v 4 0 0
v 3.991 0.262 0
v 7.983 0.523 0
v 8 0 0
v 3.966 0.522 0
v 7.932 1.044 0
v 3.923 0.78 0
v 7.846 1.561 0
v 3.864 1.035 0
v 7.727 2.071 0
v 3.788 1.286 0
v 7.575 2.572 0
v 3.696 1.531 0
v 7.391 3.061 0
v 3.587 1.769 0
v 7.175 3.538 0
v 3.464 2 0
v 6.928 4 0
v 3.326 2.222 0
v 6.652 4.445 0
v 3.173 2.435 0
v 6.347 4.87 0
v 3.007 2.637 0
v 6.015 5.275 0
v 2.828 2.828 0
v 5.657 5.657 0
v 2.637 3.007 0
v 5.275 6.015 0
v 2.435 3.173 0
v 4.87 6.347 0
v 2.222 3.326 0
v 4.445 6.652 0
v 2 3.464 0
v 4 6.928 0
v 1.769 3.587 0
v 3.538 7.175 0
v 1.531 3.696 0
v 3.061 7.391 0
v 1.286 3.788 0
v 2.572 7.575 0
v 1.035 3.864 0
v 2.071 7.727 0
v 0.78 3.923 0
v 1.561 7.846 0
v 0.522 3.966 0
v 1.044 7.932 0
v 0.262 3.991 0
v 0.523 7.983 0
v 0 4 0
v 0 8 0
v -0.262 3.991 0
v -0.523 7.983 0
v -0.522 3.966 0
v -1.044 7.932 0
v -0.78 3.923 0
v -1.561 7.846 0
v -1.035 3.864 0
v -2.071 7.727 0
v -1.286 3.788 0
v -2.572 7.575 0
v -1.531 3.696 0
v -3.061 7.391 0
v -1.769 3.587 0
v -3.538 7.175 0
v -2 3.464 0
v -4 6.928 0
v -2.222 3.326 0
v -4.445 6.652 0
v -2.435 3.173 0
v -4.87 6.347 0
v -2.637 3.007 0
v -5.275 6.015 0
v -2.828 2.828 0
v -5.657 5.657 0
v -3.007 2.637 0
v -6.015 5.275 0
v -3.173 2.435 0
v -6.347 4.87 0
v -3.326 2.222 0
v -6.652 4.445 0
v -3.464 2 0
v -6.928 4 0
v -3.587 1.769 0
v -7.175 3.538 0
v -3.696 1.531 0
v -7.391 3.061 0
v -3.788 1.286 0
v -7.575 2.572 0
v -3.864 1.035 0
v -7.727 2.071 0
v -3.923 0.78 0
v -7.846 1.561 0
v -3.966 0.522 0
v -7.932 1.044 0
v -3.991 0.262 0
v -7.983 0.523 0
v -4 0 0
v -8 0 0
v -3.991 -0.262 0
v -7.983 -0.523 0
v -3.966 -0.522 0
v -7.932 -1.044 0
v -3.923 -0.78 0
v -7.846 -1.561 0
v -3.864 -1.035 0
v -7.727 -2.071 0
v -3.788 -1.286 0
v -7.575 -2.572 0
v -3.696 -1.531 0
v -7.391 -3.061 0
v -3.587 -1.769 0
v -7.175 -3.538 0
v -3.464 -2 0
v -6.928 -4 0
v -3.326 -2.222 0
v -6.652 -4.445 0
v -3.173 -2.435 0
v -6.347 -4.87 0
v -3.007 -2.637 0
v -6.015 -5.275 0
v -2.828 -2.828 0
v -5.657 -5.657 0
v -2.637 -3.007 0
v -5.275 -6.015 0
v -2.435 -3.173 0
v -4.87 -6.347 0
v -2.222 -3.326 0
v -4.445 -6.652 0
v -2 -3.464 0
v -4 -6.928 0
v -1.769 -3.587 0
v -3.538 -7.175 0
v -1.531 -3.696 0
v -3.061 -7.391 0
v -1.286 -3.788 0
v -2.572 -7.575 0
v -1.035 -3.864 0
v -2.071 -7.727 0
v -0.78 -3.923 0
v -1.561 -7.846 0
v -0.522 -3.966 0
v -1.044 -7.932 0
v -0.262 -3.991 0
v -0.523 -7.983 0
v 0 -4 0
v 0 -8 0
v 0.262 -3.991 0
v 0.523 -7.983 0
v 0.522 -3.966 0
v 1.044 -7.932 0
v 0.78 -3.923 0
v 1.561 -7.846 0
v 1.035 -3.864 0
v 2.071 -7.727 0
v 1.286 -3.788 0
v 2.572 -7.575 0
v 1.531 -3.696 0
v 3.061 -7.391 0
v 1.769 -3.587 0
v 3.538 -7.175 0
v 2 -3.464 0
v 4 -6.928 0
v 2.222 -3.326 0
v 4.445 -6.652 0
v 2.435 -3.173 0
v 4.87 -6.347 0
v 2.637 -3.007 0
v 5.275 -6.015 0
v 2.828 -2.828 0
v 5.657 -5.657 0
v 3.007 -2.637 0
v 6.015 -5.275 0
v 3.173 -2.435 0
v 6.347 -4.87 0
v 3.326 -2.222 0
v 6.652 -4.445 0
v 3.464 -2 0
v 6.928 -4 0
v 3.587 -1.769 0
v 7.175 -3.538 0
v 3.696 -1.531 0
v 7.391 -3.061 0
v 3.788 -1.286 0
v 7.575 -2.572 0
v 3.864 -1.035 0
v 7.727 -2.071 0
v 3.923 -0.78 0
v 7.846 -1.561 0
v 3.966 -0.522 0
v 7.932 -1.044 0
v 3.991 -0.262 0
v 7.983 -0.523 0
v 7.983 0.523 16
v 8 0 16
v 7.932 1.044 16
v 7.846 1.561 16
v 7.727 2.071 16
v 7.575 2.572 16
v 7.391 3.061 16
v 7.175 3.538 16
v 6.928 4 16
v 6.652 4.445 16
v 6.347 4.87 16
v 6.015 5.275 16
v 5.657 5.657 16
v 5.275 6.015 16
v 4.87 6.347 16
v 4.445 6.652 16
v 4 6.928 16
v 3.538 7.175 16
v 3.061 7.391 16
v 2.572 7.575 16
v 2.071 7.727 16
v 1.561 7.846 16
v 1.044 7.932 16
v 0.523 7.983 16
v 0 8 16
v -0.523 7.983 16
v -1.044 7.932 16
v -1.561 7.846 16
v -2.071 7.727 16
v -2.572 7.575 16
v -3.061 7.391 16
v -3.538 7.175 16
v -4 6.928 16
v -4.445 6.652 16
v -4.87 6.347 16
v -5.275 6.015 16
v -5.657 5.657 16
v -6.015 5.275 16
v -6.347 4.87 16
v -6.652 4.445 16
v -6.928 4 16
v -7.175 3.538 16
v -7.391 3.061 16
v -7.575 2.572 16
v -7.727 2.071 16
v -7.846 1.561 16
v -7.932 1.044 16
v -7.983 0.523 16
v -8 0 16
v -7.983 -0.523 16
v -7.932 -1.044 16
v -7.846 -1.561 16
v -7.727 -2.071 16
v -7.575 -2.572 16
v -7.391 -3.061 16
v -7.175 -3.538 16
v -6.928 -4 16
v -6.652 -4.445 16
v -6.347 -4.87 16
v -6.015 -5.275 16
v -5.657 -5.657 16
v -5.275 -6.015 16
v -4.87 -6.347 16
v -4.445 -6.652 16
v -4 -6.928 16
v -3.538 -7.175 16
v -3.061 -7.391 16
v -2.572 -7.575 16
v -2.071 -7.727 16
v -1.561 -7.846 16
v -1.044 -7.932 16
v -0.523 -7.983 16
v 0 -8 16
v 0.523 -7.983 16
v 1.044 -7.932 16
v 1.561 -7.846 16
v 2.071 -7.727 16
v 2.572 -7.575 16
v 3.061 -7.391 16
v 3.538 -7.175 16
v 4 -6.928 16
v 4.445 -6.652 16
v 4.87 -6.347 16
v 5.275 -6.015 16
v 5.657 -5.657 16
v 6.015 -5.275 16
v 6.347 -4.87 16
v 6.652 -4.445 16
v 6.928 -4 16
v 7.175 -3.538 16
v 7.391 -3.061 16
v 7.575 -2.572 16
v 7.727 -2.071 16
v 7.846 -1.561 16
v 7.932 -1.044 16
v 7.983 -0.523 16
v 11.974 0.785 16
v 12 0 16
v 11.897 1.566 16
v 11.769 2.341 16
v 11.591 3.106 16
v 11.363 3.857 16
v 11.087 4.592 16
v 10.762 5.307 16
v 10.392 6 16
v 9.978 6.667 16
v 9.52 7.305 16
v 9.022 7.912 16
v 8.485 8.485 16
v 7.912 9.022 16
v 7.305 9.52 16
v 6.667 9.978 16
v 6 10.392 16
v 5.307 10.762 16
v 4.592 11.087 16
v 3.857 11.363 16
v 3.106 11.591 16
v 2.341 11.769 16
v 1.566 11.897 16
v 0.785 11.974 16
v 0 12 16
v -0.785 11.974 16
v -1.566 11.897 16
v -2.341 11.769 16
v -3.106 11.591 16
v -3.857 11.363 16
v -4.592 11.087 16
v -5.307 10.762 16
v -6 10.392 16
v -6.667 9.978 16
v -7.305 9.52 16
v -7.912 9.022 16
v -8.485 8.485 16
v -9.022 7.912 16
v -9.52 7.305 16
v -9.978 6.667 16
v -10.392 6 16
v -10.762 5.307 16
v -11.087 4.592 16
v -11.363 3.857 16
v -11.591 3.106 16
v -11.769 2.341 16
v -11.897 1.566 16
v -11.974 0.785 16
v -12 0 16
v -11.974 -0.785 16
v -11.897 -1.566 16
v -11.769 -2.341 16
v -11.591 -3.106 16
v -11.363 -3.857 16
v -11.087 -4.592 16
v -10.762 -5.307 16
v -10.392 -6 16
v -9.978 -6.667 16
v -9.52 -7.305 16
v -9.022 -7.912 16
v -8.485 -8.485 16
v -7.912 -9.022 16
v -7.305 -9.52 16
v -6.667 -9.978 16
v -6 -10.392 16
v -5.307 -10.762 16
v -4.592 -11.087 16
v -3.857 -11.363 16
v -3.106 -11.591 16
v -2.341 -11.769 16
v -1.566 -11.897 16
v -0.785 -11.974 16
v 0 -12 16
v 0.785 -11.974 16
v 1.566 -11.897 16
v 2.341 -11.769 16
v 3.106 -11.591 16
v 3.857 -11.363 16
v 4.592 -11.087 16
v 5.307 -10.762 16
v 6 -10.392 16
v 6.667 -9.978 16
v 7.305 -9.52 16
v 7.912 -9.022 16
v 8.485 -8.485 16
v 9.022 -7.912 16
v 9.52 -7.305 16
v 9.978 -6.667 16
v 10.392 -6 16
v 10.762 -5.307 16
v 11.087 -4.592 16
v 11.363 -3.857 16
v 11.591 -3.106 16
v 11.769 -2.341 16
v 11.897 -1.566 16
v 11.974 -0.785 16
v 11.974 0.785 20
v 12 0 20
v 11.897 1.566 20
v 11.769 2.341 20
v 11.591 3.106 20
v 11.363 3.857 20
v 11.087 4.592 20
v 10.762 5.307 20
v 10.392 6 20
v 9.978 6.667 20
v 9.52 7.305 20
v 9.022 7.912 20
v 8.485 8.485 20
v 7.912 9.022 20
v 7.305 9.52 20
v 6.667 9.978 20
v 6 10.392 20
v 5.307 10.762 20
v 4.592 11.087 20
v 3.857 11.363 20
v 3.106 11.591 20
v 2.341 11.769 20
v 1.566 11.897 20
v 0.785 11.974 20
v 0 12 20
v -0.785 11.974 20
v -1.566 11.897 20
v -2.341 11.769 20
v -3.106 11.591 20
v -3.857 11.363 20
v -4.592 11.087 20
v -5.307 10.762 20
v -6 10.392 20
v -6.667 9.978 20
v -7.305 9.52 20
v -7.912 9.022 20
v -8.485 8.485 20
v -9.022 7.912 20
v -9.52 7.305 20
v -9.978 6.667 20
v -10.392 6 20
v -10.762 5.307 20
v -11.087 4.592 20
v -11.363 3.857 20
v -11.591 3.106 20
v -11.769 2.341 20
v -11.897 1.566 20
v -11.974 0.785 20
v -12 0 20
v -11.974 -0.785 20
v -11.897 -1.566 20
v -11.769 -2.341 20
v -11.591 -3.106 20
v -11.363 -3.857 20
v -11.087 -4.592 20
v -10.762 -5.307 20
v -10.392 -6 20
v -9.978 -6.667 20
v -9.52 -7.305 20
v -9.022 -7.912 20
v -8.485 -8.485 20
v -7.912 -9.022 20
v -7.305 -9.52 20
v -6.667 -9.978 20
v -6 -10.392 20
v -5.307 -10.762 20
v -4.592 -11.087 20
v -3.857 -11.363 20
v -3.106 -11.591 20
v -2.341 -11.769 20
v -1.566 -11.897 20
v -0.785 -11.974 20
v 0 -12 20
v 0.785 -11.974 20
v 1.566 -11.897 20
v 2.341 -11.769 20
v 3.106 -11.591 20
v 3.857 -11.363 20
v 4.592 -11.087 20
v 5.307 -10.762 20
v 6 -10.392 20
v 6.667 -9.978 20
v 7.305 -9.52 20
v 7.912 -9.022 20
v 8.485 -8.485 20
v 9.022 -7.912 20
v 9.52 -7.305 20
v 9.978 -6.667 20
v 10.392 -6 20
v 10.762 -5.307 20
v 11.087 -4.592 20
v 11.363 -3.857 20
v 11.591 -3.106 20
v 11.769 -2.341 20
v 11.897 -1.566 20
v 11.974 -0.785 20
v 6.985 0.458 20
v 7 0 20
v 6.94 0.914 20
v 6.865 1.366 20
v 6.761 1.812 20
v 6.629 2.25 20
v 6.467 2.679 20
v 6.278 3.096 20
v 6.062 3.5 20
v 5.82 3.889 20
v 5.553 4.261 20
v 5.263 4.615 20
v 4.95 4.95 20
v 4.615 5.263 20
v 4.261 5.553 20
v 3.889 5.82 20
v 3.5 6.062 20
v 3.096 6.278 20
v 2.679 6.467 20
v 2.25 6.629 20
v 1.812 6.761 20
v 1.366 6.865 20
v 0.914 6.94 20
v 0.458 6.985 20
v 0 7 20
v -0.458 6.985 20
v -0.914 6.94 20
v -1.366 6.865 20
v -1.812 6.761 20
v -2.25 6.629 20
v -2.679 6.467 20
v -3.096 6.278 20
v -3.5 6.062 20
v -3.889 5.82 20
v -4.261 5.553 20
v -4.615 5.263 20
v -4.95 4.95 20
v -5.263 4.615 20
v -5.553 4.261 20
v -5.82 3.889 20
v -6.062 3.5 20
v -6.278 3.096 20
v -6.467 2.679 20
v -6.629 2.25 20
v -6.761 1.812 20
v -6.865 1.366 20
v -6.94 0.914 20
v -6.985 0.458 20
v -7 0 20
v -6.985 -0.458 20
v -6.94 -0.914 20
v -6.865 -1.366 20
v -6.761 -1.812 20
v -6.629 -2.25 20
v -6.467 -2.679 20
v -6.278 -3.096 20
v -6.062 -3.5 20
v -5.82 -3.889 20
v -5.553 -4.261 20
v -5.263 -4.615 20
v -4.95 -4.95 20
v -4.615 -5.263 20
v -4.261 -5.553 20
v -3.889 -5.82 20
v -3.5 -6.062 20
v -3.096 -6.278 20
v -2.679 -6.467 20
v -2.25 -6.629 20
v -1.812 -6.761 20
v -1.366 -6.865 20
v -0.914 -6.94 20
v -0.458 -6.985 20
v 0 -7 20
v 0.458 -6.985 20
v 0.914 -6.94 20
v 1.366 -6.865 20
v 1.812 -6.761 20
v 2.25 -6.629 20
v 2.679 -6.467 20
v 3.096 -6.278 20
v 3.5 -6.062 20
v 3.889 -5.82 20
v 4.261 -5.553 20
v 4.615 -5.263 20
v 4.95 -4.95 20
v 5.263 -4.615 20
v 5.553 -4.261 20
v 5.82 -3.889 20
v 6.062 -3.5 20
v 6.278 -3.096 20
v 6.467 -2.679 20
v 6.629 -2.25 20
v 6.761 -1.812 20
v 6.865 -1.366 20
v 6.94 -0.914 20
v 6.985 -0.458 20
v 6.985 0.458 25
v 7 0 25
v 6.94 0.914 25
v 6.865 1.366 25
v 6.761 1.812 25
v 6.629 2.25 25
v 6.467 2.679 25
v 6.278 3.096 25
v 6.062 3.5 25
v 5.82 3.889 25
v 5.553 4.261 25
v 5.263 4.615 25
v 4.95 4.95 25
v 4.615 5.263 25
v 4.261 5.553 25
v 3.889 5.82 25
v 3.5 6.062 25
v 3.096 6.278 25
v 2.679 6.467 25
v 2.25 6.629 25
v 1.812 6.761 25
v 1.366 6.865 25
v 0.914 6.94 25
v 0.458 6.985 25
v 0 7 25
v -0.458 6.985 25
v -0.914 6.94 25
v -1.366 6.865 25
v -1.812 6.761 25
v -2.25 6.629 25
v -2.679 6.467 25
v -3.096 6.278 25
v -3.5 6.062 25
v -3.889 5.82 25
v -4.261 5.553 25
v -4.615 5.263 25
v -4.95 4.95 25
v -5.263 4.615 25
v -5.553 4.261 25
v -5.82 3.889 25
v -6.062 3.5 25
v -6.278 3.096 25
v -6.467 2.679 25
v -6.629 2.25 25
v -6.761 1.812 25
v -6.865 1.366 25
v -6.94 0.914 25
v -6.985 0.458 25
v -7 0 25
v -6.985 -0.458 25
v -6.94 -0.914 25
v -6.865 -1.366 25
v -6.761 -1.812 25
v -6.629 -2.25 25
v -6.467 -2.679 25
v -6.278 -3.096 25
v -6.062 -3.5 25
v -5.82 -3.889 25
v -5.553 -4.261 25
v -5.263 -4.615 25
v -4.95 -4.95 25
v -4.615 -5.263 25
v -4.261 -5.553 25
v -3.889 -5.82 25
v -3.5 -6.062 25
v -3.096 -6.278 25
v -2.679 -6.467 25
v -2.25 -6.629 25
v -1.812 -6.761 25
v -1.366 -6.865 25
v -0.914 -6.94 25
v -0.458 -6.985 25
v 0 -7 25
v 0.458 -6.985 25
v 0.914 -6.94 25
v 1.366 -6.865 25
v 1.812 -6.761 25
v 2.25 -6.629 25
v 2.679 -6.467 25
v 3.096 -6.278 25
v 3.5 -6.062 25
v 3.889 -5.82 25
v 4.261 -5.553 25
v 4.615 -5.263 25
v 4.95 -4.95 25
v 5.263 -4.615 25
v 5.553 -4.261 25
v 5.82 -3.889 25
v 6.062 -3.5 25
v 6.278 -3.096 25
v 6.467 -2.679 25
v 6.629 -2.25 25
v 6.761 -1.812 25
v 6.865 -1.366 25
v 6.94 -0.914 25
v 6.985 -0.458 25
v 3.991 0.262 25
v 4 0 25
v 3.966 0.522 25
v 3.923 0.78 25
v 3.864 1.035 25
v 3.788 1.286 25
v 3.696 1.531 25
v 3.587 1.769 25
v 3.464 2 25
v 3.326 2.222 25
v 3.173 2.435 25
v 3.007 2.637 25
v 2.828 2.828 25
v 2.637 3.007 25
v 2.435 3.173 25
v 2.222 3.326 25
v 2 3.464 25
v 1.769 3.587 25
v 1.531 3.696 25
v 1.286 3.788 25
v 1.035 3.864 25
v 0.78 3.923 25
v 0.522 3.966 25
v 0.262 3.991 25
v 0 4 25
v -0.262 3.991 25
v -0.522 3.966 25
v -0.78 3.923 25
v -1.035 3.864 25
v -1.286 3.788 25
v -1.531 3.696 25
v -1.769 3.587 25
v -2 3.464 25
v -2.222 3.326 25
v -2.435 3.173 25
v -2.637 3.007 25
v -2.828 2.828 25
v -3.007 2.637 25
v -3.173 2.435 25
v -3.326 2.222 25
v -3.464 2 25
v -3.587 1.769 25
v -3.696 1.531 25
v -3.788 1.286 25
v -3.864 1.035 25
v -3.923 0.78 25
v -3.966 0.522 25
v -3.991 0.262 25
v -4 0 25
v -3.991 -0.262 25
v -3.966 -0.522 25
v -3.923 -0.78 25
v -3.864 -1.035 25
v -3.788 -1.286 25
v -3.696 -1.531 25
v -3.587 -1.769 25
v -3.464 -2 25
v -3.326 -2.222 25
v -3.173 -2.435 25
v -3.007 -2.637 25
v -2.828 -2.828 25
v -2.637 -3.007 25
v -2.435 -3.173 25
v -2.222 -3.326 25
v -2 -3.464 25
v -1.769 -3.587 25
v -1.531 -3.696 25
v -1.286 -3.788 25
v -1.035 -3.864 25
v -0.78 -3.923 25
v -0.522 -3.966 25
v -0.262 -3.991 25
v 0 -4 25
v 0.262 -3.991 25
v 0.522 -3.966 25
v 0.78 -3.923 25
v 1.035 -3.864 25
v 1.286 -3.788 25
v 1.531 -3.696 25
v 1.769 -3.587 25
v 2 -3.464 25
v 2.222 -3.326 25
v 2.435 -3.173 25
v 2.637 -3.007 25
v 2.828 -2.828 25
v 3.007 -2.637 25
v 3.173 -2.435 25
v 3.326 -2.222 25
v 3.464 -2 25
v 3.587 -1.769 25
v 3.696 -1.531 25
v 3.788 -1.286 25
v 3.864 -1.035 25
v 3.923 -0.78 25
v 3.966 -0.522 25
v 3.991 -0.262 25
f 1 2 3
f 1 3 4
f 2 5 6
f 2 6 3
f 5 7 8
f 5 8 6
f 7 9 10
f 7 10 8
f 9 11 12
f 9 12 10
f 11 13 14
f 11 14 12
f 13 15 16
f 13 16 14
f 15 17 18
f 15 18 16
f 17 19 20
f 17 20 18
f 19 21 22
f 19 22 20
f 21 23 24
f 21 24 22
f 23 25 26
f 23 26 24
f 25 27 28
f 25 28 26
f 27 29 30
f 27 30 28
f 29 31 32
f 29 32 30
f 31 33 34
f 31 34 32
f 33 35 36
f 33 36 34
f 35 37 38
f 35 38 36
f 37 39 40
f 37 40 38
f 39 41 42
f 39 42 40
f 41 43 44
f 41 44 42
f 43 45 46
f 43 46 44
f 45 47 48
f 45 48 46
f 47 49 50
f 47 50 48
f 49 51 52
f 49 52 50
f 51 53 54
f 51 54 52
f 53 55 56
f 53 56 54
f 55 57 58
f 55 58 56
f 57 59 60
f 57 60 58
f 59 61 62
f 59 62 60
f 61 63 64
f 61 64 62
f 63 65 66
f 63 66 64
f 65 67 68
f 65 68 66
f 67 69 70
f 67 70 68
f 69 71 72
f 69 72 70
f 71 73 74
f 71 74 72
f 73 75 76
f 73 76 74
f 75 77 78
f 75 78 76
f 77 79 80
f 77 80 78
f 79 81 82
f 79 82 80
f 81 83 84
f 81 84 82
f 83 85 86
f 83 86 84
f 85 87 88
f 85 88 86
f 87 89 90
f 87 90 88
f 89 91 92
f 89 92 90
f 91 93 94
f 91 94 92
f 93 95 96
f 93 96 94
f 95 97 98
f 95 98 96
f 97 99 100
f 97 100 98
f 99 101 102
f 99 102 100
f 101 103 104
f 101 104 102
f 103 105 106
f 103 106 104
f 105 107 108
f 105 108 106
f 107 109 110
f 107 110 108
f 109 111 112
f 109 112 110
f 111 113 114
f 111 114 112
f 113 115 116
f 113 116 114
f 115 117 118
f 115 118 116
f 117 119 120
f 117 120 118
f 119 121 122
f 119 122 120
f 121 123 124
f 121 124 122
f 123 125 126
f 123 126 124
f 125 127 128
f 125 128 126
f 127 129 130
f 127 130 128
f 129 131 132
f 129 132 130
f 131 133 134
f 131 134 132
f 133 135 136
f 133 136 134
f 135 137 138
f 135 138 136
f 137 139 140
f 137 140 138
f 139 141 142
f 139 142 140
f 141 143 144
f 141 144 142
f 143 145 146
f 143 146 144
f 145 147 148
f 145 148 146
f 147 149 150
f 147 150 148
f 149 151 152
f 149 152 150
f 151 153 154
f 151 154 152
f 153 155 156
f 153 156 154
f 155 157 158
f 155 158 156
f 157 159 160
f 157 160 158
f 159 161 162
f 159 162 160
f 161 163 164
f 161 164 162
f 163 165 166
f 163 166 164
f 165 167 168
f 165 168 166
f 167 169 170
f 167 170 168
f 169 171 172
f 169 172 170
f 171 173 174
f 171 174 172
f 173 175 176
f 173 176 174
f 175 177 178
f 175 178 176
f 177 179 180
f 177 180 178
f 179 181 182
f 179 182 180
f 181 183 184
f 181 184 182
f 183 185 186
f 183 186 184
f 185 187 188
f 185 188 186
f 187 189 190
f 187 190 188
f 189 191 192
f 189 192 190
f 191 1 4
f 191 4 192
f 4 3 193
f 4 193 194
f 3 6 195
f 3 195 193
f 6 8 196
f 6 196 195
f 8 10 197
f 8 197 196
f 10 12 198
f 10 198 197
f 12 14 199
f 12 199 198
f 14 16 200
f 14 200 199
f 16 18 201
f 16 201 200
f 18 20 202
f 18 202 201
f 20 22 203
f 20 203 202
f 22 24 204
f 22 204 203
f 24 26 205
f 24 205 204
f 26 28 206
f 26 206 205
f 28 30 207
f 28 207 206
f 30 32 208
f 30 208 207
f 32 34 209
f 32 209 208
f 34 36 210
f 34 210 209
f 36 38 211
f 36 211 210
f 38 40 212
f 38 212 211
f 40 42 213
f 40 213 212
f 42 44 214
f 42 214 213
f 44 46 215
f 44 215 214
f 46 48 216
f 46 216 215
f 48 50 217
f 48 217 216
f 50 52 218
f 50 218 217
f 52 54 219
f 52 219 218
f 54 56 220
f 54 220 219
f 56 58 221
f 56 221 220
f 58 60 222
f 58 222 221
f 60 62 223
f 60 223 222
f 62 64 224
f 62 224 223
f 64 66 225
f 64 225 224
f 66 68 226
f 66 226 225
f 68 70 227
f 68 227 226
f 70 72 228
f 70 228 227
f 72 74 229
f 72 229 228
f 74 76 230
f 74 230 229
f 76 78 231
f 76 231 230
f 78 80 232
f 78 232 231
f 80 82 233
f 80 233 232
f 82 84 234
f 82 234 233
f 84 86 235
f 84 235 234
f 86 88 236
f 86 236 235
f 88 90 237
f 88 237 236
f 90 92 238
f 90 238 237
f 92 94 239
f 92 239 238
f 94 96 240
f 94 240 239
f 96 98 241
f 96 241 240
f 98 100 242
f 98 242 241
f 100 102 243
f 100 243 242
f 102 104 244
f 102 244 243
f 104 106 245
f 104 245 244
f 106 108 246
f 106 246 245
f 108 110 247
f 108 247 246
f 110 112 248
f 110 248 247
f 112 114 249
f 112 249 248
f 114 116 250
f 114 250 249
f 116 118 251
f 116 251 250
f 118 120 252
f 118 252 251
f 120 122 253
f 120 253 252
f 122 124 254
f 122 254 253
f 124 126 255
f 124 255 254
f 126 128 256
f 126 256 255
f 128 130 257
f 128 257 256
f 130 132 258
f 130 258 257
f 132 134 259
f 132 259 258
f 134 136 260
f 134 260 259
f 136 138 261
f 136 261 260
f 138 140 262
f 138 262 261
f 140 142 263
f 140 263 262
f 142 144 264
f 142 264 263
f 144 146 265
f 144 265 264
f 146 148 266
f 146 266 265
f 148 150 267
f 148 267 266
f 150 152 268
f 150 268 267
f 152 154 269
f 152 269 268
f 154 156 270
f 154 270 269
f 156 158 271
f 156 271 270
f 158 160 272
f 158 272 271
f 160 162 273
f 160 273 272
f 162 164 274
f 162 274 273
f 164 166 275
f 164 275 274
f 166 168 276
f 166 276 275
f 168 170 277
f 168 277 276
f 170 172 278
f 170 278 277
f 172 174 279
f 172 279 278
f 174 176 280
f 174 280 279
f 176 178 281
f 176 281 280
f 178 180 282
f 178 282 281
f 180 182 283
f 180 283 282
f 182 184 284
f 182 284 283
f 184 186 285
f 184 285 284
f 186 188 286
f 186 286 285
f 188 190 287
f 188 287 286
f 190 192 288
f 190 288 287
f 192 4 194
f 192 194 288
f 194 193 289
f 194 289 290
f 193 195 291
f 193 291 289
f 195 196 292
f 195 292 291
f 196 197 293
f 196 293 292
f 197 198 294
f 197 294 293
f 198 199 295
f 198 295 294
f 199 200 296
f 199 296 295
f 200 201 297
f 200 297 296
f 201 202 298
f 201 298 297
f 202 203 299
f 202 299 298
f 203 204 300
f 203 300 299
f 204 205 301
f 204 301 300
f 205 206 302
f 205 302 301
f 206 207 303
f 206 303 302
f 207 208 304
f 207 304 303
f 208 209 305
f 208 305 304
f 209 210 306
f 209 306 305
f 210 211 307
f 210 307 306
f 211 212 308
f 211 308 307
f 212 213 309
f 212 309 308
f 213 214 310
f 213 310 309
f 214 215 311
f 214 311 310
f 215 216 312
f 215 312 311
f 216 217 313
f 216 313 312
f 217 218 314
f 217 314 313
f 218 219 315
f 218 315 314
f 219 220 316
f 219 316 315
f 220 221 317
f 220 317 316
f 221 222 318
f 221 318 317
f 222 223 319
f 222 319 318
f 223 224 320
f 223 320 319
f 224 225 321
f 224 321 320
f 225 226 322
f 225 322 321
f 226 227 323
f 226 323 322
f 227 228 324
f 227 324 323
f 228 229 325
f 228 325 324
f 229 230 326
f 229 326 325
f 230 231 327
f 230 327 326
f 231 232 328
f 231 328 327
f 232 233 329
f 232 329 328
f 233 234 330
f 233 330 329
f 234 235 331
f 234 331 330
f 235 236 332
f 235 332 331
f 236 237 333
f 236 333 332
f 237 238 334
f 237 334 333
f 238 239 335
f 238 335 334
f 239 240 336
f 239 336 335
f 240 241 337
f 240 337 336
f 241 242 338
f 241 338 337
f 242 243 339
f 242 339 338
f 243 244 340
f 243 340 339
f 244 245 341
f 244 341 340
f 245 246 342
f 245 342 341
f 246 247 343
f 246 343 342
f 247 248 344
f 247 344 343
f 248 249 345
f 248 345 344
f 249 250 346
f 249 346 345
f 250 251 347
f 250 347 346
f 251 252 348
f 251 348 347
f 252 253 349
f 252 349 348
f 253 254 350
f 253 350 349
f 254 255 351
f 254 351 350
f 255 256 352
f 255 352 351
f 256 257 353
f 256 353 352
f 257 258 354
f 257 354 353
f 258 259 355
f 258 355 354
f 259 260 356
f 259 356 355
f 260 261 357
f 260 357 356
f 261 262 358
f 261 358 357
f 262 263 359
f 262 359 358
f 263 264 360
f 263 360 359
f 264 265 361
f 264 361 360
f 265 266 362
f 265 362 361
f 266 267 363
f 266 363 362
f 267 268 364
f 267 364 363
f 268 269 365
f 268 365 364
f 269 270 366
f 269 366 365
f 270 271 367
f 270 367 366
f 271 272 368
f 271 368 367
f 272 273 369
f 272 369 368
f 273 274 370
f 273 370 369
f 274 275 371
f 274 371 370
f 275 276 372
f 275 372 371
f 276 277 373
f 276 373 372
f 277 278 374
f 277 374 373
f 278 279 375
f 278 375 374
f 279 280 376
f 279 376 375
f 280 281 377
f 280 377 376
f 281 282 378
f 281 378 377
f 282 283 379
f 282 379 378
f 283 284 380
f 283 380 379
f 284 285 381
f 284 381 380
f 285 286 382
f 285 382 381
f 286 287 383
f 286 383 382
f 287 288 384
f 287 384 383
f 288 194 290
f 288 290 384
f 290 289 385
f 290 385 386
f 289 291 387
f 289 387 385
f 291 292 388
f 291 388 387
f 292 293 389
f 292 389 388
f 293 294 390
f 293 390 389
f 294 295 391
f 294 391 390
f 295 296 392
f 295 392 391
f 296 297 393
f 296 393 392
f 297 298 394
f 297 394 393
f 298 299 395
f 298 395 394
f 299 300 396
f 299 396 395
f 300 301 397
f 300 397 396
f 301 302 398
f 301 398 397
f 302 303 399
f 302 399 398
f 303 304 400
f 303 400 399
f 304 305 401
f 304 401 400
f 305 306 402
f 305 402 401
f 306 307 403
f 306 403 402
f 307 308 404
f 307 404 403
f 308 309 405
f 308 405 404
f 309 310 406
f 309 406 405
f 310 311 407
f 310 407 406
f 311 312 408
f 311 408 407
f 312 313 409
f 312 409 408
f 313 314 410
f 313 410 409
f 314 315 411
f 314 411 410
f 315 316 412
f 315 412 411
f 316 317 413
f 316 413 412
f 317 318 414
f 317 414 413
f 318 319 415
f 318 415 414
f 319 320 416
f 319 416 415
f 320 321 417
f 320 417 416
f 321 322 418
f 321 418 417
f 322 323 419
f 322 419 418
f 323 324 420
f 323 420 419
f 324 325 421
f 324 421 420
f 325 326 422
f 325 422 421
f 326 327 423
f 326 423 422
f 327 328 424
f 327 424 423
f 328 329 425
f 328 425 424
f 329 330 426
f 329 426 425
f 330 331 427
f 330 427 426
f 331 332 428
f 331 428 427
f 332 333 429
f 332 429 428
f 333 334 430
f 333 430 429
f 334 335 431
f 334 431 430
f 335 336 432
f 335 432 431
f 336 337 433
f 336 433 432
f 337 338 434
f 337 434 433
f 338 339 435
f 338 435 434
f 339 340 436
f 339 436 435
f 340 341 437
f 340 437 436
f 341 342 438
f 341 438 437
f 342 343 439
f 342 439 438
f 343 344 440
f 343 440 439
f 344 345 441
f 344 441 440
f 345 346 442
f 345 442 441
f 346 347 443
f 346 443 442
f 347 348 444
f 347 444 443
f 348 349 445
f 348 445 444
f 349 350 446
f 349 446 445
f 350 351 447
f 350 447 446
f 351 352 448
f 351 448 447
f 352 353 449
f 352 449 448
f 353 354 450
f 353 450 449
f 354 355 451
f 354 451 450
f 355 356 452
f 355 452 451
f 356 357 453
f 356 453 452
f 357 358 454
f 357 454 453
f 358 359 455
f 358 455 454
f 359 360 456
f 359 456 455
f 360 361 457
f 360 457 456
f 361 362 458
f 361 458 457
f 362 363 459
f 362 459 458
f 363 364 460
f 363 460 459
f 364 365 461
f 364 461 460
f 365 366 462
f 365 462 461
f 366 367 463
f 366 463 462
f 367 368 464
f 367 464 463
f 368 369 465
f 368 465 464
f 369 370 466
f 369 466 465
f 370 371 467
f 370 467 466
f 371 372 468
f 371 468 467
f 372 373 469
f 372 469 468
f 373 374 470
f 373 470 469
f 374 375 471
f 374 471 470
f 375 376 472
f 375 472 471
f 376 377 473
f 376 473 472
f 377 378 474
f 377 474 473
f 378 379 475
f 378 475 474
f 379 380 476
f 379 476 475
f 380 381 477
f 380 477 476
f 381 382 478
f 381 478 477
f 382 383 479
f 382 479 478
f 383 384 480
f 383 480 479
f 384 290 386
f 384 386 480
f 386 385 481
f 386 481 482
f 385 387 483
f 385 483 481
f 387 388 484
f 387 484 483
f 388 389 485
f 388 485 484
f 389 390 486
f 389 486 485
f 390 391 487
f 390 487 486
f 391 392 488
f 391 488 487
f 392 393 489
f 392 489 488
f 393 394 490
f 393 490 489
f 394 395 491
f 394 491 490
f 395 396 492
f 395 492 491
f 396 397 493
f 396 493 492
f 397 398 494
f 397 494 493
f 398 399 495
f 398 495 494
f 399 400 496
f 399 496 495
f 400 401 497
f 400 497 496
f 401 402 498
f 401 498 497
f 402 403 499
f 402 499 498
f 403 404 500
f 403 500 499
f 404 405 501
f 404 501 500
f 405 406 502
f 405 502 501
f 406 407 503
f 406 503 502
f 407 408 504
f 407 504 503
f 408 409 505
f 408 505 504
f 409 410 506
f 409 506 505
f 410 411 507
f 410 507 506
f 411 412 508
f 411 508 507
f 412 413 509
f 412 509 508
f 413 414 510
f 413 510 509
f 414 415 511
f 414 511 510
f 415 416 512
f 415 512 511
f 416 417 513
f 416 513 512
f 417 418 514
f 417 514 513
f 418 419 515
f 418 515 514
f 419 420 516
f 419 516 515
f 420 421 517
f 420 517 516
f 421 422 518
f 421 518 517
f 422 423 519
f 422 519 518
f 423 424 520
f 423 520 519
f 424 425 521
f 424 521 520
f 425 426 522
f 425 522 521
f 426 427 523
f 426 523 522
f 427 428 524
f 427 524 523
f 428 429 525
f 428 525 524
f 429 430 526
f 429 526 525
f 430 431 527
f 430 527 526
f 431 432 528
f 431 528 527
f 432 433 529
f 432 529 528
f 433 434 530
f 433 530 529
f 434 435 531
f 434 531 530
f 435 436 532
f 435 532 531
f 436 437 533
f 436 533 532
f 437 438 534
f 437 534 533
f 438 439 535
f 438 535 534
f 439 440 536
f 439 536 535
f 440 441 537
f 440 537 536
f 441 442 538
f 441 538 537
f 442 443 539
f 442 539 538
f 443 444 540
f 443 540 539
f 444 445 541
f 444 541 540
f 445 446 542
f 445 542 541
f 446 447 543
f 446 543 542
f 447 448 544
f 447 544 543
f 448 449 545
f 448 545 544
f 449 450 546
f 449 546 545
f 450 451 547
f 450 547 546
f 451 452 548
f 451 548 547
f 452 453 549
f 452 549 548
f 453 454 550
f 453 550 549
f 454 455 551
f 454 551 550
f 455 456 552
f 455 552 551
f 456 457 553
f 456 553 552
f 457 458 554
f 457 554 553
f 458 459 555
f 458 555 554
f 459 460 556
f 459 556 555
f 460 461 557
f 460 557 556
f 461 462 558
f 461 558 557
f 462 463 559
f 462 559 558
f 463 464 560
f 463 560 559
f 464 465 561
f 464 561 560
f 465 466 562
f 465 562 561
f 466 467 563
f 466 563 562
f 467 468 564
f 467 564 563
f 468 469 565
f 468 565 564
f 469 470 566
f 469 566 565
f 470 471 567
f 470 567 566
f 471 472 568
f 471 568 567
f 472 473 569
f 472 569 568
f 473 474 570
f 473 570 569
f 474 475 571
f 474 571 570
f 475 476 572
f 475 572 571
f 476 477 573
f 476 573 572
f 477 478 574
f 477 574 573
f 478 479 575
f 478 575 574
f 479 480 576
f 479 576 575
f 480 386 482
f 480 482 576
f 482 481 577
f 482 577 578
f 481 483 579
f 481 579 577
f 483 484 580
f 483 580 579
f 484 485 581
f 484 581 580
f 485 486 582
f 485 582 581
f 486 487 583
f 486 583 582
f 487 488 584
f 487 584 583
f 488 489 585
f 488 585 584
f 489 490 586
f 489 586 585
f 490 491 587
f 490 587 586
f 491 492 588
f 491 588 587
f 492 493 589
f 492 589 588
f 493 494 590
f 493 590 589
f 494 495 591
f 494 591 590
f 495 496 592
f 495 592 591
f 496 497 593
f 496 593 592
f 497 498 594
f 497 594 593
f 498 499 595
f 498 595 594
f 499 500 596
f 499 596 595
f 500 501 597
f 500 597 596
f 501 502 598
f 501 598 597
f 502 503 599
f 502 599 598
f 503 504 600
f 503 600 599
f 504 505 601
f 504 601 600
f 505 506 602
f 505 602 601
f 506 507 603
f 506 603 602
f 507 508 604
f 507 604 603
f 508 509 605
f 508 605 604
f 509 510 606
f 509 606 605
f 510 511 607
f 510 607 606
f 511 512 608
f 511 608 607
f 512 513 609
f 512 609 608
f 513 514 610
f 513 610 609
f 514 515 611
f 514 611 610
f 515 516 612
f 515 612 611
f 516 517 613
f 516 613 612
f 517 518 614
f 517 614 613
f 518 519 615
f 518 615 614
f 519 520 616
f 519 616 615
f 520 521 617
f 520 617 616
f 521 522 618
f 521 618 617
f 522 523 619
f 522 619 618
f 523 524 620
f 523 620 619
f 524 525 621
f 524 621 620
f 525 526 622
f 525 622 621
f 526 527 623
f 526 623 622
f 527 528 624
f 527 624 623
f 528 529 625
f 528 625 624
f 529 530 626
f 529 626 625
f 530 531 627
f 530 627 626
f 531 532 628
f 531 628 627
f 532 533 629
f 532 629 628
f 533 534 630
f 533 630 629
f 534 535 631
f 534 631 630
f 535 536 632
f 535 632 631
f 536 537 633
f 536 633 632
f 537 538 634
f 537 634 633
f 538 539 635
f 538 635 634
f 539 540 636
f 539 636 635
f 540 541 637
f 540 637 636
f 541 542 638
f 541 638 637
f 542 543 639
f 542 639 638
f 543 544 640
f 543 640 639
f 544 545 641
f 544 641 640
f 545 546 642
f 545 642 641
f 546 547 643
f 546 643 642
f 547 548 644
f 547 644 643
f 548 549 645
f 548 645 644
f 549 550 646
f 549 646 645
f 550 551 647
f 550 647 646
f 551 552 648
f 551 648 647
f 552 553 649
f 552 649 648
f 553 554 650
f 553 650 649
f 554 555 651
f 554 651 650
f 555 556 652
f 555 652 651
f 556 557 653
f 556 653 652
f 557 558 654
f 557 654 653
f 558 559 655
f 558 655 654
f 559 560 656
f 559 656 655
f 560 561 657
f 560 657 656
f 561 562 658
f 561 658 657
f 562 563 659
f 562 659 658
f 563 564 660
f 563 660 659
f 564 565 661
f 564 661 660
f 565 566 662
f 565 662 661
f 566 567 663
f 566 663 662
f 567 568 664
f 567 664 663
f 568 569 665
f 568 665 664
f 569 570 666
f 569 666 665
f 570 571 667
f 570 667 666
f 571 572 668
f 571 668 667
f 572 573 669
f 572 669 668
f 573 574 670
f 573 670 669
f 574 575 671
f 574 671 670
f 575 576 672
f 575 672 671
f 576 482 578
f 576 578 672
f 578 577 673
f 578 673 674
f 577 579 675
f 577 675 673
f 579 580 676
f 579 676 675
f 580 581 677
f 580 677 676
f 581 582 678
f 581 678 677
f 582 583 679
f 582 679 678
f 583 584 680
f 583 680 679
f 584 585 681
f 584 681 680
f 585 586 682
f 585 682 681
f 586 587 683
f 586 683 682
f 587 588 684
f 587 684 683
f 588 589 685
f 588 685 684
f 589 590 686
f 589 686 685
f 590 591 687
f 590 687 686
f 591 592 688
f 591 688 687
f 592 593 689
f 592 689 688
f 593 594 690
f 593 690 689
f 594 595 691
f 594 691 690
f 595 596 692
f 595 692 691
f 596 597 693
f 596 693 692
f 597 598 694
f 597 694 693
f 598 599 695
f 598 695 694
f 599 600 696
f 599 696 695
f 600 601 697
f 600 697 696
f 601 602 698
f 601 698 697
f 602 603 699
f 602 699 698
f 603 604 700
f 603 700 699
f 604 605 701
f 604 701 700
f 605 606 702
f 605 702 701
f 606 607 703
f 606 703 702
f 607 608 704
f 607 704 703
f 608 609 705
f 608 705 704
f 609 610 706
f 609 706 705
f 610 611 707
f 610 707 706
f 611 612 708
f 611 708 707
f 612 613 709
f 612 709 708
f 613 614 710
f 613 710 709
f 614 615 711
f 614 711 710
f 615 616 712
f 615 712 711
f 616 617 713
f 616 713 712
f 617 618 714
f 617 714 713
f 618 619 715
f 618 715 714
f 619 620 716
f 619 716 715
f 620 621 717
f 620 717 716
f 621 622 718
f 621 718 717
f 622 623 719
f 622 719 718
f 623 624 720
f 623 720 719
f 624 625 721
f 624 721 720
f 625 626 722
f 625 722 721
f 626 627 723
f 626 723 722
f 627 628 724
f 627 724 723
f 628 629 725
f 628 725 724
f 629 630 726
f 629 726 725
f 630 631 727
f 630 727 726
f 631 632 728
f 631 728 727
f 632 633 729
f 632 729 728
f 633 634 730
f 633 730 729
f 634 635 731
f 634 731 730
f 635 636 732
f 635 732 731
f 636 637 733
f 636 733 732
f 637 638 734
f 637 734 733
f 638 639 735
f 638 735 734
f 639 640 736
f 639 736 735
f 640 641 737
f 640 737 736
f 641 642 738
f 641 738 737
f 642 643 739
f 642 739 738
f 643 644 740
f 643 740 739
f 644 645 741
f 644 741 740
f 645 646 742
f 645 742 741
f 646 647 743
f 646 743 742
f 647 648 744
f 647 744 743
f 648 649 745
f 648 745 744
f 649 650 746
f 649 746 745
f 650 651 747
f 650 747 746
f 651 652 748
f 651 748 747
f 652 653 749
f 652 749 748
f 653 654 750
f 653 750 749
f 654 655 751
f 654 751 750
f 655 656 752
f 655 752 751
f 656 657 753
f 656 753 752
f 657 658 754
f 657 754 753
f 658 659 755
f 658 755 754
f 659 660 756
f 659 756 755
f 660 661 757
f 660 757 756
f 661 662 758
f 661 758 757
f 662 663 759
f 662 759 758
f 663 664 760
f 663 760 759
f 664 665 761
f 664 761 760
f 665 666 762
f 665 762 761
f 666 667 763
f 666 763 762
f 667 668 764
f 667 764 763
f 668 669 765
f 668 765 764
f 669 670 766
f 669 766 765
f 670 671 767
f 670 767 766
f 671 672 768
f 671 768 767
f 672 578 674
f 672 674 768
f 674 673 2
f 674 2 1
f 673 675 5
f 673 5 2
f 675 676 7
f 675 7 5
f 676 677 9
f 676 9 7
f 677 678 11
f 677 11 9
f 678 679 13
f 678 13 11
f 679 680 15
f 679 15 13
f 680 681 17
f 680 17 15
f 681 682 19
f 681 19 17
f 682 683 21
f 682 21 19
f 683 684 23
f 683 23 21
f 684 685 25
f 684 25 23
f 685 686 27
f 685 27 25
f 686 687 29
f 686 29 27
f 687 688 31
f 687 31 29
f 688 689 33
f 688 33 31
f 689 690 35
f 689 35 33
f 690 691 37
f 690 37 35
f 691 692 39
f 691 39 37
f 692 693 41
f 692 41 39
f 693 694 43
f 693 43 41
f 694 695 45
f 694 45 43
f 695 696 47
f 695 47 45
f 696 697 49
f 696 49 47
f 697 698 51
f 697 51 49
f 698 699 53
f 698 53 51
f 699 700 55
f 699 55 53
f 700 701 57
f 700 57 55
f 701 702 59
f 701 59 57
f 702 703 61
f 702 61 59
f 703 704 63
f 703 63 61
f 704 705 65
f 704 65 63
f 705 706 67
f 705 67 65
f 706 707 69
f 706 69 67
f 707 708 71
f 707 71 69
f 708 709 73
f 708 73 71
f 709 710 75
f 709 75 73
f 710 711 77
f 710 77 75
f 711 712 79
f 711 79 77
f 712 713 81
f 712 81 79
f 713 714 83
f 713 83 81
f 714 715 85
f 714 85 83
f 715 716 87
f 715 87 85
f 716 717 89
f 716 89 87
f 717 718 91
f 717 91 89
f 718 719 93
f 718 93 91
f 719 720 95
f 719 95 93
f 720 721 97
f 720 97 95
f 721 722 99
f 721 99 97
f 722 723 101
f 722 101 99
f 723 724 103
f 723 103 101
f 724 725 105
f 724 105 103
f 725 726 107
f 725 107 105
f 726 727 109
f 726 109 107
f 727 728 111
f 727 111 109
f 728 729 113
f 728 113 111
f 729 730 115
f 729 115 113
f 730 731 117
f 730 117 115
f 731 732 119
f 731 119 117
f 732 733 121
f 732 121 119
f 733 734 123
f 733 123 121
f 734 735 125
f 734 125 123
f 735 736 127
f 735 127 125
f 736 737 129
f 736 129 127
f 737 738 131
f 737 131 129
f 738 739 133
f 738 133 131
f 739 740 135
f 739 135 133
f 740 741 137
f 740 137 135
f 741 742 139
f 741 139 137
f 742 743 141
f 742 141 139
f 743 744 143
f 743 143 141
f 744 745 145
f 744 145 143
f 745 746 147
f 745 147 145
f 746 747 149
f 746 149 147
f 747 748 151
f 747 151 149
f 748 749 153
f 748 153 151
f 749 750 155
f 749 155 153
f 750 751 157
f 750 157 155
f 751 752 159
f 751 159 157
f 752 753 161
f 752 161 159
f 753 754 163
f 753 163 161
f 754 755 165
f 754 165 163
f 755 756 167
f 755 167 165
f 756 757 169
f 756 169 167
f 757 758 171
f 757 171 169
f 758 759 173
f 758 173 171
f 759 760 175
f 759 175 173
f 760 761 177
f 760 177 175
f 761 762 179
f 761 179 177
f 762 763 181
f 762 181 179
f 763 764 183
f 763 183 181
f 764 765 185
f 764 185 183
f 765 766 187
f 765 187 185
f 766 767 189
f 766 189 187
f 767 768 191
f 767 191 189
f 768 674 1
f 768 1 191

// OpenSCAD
// Original MechIntel educational model. CC0-1.0. Units: mm.
// Not a standardized or load-rated component.
$fn=96;
// Section points: [radius, height], mm. Edit to change the profile.
section=[[4, 0], [8, 0], [8, 16], [12, 16], [12, 20], [7, 20], [7, 25], [4, 25]];
rotate_extrude($fn=96) polygon(points=section);
